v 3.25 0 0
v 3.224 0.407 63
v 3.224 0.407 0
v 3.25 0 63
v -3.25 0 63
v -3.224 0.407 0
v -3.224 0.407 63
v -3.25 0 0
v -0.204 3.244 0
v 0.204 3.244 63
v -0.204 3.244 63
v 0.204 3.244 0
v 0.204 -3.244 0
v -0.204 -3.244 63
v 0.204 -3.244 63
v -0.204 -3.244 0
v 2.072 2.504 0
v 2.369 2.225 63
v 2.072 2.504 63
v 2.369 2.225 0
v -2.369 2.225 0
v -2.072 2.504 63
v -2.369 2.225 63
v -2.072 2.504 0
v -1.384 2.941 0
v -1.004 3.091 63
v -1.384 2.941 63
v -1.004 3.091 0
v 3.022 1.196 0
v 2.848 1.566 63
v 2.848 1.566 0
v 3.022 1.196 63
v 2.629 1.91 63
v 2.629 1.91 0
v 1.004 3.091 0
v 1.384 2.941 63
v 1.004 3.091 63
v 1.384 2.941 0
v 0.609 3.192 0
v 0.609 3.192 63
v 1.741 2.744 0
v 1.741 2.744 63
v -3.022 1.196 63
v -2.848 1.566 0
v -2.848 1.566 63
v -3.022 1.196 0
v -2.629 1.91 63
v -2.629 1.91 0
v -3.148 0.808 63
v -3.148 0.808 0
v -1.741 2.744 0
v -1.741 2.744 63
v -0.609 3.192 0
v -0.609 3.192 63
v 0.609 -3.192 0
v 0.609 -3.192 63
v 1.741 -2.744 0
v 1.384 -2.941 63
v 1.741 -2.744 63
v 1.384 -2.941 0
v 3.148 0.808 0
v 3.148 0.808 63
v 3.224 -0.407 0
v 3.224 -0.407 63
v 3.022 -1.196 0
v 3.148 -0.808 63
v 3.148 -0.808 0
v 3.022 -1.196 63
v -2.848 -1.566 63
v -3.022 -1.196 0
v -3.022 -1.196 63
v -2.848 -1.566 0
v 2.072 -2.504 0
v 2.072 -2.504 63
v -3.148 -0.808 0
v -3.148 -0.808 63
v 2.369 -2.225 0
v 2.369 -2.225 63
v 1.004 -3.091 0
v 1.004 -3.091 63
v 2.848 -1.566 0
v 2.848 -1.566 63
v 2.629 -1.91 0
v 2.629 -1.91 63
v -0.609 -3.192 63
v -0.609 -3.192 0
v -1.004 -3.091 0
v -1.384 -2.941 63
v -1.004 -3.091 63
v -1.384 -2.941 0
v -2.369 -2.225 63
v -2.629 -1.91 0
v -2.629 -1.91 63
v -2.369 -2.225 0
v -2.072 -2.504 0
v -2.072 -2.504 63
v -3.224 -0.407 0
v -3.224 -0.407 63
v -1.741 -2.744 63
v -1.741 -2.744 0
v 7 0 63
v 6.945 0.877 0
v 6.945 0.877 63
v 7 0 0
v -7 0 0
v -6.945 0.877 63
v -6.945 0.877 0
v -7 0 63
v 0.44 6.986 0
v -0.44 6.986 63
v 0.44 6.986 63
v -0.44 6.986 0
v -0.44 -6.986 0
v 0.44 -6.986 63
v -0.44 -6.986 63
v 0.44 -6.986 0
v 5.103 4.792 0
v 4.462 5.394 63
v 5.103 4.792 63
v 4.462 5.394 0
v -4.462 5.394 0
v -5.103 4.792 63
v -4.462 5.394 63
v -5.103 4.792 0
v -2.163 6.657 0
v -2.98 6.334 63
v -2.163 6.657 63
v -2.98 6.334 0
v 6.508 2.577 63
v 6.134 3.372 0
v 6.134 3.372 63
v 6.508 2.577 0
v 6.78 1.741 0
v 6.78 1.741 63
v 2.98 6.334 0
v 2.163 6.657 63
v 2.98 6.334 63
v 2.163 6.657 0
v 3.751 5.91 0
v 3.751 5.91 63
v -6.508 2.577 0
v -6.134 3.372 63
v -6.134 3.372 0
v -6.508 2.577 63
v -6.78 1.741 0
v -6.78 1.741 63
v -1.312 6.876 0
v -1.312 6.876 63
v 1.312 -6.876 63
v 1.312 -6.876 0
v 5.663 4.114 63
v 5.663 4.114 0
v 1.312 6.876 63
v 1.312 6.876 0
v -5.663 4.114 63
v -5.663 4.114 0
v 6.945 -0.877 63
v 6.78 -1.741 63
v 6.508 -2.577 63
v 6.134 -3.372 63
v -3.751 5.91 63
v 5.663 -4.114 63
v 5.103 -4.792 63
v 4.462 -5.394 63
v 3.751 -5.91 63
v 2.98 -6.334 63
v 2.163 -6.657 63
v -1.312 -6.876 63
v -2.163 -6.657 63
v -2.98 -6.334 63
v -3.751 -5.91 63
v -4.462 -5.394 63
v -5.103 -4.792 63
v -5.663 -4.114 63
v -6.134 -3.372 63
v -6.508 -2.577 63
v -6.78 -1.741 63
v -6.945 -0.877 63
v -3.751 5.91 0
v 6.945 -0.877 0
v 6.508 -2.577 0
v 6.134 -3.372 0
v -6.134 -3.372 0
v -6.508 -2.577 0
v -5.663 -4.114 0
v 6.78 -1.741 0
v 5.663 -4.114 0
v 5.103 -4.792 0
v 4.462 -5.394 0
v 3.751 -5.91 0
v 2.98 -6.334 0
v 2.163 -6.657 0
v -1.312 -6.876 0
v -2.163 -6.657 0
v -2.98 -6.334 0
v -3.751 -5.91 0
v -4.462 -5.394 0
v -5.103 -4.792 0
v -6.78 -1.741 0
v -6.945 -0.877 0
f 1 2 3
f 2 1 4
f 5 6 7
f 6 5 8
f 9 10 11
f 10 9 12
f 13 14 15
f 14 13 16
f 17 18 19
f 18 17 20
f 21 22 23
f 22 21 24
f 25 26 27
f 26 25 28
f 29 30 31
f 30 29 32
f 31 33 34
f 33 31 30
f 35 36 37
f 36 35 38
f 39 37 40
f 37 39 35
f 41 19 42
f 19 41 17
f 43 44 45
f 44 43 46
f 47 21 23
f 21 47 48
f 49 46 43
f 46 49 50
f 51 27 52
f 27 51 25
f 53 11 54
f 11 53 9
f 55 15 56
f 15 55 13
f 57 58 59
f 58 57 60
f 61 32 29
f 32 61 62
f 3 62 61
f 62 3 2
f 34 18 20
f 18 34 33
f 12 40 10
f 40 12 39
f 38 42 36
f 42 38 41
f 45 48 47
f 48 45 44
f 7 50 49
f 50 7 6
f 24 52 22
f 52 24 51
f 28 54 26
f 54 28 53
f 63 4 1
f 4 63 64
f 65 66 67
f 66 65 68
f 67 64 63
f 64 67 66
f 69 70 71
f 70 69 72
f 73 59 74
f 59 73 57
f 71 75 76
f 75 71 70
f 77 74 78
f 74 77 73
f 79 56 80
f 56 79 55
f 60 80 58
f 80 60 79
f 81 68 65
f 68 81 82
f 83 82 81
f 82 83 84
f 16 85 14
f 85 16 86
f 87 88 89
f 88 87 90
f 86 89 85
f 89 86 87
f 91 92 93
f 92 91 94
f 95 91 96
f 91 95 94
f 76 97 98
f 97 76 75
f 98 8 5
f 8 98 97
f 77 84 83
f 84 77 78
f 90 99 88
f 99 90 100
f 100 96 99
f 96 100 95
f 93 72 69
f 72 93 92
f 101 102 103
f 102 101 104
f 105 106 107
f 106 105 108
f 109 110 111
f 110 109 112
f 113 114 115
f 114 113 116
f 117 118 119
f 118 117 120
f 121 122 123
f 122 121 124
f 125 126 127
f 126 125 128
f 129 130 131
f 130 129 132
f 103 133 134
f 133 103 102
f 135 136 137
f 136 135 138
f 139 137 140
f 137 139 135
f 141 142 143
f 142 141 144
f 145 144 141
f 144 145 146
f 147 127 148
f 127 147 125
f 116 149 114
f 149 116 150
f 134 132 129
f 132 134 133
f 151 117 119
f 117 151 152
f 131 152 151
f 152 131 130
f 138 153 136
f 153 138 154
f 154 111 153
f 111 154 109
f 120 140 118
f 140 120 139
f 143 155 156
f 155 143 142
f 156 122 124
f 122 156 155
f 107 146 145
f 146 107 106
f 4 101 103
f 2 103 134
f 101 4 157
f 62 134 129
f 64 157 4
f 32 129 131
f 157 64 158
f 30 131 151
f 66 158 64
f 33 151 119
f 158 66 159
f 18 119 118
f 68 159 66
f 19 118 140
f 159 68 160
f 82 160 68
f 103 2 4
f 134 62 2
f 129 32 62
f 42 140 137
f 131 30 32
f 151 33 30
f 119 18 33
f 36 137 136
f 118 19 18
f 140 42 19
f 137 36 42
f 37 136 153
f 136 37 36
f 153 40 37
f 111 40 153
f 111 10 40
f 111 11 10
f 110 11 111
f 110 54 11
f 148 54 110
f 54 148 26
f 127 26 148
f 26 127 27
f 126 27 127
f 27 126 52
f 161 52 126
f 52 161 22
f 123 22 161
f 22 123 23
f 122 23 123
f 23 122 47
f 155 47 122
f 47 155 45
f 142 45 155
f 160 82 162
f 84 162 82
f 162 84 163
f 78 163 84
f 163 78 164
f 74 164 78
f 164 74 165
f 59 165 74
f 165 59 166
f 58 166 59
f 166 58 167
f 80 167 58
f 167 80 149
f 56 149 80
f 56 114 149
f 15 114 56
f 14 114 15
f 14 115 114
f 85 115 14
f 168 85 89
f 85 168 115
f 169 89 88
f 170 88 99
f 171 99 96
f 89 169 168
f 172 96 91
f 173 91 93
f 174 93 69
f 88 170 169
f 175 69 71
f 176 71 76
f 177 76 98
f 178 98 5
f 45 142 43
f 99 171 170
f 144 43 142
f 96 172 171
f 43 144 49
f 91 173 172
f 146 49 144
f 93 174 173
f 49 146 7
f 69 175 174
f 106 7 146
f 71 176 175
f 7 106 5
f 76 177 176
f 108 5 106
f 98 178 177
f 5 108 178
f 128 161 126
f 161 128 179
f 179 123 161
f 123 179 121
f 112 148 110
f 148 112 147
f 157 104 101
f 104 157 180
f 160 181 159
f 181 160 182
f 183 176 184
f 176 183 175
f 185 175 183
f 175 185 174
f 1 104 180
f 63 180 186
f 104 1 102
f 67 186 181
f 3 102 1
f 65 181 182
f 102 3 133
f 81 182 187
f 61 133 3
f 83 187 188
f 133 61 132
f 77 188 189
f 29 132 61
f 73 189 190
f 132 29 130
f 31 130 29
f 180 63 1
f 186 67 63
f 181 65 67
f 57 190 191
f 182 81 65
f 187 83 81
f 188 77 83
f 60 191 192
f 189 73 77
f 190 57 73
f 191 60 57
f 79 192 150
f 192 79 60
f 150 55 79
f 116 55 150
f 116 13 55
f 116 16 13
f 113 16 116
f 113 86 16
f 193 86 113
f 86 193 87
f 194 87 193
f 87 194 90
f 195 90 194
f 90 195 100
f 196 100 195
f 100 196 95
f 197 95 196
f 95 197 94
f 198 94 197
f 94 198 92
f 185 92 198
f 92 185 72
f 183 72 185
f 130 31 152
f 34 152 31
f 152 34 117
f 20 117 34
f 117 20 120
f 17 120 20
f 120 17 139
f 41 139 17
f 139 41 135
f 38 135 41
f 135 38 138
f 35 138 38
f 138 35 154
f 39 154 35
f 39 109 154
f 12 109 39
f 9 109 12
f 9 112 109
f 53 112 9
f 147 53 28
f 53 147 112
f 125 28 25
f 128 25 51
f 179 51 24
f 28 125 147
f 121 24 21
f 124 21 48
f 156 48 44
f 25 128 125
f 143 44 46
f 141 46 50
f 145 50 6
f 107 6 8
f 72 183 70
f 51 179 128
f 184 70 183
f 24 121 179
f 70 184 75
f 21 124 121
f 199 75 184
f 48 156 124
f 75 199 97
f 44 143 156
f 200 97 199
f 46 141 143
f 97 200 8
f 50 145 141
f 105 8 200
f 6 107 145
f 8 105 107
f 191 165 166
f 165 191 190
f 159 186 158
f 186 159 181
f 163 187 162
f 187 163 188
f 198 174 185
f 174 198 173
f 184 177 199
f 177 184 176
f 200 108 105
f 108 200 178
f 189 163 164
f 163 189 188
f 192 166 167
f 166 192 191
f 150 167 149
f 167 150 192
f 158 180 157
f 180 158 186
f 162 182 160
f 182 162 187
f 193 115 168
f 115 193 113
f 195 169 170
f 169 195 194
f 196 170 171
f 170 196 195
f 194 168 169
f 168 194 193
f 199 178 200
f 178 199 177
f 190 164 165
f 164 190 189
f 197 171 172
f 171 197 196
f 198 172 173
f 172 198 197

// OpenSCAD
$fn = 50;


difference() {
	union() {
		cylinder(h = 63, r = 7.0000000000);
	}
	union() {
		translate(v = [0.0000000000, 0.0000000000, -100.0000000000]) {
			cylinder(h = 200, r = 3.2500000000);
		}
		cylinder(h = 63, r = 1.8000000000);
		cylinder(h = 63, r = 1.8000000000);
		cylinder(h = 63, r = 1.8000000000);
	}
}
